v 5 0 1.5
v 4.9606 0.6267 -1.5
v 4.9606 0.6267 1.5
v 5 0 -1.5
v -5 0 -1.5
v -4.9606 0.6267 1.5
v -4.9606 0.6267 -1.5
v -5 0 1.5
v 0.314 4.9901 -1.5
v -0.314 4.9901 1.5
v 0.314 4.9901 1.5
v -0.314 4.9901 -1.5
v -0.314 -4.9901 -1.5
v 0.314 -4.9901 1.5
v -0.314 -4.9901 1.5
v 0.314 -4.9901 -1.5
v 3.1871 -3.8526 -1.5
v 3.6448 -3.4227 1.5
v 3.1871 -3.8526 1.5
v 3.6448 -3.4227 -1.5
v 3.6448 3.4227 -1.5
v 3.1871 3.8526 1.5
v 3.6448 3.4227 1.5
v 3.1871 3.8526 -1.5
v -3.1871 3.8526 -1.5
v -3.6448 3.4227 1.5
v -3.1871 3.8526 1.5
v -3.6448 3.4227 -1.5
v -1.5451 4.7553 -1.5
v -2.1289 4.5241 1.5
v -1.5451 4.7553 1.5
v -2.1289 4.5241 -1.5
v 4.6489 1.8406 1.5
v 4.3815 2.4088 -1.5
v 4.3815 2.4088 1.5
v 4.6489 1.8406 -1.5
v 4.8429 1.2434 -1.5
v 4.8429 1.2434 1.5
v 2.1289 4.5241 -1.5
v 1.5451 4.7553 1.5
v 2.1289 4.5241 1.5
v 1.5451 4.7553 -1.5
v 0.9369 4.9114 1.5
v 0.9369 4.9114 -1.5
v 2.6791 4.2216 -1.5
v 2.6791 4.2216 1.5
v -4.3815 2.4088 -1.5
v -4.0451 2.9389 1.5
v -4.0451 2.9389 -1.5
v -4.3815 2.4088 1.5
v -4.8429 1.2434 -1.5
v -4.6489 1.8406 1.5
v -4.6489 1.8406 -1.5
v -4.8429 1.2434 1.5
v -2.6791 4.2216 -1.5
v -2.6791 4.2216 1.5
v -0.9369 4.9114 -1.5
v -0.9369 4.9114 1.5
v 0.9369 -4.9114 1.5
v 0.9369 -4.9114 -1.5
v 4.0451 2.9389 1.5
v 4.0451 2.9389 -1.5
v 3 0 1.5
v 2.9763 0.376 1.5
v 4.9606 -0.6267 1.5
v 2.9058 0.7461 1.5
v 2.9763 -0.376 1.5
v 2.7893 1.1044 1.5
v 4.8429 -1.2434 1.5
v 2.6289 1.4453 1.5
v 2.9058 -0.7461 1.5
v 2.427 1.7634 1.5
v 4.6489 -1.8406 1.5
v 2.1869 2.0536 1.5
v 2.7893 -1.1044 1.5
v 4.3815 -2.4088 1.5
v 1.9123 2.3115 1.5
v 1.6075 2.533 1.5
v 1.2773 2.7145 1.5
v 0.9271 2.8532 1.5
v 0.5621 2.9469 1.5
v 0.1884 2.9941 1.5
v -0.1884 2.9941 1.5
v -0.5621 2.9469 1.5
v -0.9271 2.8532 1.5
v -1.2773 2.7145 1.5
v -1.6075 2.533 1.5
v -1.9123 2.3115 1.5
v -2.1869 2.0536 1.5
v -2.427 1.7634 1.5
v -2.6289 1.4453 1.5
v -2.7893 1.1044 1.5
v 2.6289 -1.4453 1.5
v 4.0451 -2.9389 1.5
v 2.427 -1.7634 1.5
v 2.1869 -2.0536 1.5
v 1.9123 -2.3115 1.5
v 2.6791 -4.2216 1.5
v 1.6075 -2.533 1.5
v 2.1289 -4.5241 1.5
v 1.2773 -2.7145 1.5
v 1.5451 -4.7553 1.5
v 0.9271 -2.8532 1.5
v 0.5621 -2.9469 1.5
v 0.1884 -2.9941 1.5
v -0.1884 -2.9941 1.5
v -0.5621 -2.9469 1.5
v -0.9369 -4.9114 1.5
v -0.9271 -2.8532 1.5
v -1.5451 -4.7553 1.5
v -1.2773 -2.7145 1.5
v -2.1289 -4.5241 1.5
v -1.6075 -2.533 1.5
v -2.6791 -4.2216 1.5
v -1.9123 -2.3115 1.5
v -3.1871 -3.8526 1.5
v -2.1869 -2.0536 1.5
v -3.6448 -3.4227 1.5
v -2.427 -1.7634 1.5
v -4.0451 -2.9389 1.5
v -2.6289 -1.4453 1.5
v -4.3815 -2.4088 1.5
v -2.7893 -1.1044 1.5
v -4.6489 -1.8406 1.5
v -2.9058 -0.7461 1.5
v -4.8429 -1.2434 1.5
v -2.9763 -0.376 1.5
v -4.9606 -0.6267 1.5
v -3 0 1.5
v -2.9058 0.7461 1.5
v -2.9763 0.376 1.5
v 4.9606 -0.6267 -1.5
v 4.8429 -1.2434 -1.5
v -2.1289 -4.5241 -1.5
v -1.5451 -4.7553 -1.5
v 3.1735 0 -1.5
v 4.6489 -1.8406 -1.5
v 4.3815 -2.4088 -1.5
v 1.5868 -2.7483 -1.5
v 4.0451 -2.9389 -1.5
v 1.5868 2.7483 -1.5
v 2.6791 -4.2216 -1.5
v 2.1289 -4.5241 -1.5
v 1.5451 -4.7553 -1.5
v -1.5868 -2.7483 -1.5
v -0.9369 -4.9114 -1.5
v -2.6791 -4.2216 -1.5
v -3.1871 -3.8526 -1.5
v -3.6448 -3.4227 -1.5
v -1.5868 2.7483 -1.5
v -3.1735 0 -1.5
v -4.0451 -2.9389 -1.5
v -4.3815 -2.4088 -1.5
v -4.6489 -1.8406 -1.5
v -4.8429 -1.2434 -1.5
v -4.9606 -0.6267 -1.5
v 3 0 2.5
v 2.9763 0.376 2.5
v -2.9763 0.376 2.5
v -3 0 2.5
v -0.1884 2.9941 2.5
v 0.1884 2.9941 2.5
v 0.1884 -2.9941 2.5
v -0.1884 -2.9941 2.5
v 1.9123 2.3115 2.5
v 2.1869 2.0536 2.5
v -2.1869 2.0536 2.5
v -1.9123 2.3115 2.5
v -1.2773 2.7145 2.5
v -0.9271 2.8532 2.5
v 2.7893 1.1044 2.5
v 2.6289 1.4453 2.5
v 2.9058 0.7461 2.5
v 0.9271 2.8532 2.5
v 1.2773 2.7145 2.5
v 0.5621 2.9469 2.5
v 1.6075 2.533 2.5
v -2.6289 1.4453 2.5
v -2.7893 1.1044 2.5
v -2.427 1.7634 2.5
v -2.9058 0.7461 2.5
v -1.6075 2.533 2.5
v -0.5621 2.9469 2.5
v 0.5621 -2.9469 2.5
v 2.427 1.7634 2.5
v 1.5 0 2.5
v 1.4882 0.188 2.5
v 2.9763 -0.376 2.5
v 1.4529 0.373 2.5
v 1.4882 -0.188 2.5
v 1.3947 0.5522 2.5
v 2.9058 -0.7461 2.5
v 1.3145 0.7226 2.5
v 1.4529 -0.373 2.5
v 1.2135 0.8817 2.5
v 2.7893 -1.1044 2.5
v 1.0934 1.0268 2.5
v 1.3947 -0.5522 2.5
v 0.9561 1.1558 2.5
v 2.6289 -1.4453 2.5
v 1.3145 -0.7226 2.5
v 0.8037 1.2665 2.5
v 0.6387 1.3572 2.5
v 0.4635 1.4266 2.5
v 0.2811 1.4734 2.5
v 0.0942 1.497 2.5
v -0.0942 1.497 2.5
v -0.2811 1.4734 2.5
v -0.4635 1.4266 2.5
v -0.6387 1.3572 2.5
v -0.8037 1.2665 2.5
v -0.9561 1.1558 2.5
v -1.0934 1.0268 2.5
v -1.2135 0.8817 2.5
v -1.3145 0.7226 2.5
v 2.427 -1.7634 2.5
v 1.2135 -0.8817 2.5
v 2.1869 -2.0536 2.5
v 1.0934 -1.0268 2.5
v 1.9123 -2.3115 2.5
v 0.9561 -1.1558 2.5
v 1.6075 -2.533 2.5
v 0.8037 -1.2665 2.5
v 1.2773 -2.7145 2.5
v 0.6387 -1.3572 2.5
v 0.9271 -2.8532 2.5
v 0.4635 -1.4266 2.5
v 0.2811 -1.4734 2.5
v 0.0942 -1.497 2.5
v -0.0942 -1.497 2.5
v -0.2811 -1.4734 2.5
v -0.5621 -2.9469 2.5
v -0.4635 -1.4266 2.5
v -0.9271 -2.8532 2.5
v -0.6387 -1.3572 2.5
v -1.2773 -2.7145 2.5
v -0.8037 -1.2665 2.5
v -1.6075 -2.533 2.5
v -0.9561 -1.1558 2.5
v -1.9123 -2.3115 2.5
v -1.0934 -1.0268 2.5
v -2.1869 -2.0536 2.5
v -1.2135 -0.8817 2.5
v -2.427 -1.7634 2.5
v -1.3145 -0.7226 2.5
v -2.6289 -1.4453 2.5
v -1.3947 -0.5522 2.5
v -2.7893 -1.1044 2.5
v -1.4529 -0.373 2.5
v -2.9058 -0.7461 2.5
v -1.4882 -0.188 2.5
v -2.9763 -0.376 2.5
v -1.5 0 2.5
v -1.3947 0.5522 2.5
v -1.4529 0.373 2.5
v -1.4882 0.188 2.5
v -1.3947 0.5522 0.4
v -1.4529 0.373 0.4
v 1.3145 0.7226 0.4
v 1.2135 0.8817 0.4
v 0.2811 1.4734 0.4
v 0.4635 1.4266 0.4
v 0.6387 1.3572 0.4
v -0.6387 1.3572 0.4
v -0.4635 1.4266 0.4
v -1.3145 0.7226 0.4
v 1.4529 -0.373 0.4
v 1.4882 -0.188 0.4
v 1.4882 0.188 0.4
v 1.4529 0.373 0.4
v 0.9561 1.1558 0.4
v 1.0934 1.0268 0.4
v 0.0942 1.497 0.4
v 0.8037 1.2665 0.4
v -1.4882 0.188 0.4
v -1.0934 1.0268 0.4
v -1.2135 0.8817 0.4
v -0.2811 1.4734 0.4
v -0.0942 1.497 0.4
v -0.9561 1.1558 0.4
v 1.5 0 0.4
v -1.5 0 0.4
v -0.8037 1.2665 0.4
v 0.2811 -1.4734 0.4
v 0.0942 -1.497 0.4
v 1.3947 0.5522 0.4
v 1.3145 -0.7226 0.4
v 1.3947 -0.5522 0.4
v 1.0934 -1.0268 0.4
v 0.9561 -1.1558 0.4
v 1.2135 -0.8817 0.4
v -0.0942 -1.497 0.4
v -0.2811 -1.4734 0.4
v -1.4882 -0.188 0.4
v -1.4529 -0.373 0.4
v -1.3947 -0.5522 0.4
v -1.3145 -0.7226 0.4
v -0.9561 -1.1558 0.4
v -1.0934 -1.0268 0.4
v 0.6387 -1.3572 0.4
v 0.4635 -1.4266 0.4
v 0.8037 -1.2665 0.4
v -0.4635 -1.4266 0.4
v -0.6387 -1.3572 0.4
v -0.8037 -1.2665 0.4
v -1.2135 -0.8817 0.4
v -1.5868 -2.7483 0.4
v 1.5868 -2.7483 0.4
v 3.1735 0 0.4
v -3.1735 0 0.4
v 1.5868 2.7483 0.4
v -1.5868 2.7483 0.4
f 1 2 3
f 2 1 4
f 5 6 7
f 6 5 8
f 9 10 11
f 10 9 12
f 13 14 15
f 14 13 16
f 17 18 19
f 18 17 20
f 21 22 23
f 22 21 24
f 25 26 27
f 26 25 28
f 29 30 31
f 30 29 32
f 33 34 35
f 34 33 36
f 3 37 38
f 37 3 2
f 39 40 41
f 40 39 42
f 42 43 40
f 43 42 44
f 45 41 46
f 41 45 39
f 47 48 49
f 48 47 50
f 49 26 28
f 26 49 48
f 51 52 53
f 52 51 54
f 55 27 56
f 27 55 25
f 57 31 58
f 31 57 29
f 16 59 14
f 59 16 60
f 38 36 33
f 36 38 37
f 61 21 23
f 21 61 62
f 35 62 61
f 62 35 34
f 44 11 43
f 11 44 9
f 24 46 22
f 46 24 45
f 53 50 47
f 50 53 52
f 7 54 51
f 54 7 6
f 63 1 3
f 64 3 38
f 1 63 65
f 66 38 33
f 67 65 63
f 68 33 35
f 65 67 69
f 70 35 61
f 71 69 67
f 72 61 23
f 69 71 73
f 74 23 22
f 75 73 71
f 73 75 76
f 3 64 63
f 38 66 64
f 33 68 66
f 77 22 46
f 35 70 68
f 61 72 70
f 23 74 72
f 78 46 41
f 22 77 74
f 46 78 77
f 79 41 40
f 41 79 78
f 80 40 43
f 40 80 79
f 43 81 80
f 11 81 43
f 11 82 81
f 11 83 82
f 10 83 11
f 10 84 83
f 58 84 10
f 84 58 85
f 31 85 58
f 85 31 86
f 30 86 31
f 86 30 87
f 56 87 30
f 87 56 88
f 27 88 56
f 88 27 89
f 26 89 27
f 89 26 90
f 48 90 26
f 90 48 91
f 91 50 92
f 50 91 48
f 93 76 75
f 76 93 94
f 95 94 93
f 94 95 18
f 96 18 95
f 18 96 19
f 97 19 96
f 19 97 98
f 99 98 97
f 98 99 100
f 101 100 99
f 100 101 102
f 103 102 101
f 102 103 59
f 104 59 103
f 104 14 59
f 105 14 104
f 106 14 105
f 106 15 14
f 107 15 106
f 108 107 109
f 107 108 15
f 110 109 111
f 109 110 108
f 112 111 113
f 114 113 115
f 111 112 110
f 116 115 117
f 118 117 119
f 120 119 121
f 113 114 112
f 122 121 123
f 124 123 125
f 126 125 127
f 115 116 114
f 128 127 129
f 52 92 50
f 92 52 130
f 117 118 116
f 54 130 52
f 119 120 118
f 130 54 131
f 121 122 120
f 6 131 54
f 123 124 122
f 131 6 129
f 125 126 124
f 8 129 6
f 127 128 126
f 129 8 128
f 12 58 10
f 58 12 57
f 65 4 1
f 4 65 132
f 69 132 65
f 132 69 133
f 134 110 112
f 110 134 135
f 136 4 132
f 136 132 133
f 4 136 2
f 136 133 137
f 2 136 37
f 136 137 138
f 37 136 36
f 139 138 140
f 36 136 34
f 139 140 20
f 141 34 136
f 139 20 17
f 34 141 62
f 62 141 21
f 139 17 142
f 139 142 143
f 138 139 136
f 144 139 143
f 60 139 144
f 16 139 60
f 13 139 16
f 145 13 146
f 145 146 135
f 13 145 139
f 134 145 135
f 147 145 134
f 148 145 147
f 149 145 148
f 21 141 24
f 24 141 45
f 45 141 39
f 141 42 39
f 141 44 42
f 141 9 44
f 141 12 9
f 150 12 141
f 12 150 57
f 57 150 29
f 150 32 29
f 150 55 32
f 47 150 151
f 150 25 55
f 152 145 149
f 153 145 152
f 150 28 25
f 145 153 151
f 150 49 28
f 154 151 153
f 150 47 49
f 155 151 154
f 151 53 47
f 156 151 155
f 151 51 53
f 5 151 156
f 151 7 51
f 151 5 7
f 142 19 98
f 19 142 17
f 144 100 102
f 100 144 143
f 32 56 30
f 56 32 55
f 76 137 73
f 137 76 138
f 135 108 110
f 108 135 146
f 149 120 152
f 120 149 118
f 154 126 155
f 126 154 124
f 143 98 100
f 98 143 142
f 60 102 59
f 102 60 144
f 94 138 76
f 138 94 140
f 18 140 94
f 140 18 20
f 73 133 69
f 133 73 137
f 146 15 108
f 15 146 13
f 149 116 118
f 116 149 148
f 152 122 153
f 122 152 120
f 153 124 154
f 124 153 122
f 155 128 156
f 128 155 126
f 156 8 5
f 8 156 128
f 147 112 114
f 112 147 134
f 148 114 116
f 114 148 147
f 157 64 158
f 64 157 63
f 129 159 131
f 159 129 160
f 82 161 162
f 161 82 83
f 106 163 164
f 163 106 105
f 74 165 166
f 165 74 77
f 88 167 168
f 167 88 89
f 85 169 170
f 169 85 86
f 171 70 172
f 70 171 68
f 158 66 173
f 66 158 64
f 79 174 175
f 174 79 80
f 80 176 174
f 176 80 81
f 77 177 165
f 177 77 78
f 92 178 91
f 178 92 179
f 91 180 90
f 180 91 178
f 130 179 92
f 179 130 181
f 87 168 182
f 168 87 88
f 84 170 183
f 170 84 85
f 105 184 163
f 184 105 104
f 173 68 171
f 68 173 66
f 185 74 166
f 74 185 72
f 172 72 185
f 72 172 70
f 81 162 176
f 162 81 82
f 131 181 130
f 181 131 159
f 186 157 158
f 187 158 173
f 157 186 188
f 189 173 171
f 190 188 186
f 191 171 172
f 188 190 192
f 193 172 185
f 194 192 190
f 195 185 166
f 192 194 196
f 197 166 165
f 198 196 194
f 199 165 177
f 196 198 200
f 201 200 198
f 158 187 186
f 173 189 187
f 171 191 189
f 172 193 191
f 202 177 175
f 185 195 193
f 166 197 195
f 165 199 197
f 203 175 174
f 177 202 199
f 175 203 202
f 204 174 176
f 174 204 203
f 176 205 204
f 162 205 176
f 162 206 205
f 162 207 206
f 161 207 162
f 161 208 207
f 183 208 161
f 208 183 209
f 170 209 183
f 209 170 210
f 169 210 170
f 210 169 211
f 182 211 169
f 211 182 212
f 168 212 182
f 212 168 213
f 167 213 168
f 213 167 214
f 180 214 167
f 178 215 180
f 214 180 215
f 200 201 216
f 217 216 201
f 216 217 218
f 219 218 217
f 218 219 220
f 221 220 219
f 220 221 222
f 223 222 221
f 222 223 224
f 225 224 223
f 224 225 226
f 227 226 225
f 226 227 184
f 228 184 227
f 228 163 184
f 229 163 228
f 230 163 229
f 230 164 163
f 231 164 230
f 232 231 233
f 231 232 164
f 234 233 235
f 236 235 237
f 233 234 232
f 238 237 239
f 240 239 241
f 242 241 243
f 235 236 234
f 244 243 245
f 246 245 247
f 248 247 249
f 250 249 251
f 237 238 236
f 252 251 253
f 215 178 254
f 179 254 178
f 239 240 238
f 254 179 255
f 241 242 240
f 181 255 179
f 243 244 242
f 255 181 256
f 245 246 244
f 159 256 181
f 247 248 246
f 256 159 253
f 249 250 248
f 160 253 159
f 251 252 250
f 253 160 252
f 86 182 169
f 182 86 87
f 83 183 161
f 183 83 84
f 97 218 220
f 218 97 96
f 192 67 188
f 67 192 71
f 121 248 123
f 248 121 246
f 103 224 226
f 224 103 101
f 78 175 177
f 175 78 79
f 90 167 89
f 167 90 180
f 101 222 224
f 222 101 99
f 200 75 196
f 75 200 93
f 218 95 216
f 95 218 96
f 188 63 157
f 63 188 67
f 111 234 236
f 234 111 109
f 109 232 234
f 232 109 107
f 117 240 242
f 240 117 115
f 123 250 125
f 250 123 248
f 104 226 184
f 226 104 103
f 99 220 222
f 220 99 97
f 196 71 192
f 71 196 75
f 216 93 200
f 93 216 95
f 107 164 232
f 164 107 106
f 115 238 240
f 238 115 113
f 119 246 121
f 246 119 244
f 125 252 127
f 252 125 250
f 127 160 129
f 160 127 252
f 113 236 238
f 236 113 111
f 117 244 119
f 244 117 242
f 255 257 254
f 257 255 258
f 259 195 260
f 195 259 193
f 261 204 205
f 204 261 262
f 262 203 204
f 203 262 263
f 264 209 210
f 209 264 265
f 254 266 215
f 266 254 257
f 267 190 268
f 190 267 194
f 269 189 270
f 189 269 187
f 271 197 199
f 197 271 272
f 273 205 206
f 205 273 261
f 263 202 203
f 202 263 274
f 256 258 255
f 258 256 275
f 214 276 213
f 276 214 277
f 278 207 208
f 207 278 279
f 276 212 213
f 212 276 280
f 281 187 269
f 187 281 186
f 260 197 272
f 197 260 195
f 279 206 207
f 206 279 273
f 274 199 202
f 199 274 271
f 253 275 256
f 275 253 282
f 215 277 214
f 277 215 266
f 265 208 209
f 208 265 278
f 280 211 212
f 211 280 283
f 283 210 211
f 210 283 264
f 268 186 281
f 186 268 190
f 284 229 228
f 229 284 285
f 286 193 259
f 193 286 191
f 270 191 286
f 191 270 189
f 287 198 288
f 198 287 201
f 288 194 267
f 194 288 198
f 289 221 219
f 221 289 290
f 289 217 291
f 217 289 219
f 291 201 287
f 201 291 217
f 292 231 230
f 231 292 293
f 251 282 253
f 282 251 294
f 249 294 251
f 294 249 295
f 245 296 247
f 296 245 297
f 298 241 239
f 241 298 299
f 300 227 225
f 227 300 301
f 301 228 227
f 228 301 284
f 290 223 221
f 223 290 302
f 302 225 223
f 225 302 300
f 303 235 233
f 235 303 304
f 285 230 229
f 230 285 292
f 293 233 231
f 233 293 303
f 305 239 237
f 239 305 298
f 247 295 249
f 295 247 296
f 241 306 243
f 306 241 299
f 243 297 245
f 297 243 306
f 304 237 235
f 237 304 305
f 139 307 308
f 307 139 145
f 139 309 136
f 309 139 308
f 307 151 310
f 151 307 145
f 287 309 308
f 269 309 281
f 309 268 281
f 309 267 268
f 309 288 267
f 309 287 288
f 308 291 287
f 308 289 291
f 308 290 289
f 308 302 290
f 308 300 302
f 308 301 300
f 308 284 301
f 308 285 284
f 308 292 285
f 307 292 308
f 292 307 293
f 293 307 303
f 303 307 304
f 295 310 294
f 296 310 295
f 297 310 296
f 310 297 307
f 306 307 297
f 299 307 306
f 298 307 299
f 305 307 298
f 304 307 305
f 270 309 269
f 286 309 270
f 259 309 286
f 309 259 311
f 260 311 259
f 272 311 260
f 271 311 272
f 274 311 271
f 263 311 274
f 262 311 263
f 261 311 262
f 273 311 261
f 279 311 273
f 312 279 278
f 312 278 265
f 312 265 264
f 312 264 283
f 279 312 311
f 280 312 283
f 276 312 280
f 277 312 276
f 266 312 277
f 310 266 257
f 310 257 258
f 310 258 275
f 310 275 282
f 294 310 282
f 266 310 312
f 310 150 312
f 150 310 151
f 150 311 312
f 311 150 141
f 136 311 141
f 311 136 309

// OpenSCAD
$fn = 50;


difference() {
	union() {
		translate(v = [0, 0, -1.5000000000]) {
			rotate(a = [0, 0, 0]) {
				cylinder(h = 3, r = 5.0000000000);
			}
		}
		translate(v = [0, 0, -1.5000000000]) {
			rotate(a = [0, 0, 0]) {
				cylinder(h = 4, r = 3.0000000000);
			}
		}
	}
	union() {
		translate(v = [0, 0, -125.0000000000]) {
			rotate(a = [0, 0, 0]) {
				cylinder(h = 250, r = 1.5000000000);
			}
		}
		translate(v = [0, 0, -2.1000000000]) {
			rotate(a = [0, 0, 0]) {
				#translate(v = [0, 0, 0]) {
					rotate(a = [0, 0, 0]) {
						linear_extrude(height = 2.5000000000) {
							polygon(points = [[3.1735000000, 0.0000000000], [1.5867500000, 2.7483316189], [-1.5867500000, 2.7483316189], [-3.1735000000, 0.0000000000], [-1.5867500000, -2.7483316189], [1.5867500000, -2.7483316189]]);
						}
					}
				}
			}
		}
	}
}
